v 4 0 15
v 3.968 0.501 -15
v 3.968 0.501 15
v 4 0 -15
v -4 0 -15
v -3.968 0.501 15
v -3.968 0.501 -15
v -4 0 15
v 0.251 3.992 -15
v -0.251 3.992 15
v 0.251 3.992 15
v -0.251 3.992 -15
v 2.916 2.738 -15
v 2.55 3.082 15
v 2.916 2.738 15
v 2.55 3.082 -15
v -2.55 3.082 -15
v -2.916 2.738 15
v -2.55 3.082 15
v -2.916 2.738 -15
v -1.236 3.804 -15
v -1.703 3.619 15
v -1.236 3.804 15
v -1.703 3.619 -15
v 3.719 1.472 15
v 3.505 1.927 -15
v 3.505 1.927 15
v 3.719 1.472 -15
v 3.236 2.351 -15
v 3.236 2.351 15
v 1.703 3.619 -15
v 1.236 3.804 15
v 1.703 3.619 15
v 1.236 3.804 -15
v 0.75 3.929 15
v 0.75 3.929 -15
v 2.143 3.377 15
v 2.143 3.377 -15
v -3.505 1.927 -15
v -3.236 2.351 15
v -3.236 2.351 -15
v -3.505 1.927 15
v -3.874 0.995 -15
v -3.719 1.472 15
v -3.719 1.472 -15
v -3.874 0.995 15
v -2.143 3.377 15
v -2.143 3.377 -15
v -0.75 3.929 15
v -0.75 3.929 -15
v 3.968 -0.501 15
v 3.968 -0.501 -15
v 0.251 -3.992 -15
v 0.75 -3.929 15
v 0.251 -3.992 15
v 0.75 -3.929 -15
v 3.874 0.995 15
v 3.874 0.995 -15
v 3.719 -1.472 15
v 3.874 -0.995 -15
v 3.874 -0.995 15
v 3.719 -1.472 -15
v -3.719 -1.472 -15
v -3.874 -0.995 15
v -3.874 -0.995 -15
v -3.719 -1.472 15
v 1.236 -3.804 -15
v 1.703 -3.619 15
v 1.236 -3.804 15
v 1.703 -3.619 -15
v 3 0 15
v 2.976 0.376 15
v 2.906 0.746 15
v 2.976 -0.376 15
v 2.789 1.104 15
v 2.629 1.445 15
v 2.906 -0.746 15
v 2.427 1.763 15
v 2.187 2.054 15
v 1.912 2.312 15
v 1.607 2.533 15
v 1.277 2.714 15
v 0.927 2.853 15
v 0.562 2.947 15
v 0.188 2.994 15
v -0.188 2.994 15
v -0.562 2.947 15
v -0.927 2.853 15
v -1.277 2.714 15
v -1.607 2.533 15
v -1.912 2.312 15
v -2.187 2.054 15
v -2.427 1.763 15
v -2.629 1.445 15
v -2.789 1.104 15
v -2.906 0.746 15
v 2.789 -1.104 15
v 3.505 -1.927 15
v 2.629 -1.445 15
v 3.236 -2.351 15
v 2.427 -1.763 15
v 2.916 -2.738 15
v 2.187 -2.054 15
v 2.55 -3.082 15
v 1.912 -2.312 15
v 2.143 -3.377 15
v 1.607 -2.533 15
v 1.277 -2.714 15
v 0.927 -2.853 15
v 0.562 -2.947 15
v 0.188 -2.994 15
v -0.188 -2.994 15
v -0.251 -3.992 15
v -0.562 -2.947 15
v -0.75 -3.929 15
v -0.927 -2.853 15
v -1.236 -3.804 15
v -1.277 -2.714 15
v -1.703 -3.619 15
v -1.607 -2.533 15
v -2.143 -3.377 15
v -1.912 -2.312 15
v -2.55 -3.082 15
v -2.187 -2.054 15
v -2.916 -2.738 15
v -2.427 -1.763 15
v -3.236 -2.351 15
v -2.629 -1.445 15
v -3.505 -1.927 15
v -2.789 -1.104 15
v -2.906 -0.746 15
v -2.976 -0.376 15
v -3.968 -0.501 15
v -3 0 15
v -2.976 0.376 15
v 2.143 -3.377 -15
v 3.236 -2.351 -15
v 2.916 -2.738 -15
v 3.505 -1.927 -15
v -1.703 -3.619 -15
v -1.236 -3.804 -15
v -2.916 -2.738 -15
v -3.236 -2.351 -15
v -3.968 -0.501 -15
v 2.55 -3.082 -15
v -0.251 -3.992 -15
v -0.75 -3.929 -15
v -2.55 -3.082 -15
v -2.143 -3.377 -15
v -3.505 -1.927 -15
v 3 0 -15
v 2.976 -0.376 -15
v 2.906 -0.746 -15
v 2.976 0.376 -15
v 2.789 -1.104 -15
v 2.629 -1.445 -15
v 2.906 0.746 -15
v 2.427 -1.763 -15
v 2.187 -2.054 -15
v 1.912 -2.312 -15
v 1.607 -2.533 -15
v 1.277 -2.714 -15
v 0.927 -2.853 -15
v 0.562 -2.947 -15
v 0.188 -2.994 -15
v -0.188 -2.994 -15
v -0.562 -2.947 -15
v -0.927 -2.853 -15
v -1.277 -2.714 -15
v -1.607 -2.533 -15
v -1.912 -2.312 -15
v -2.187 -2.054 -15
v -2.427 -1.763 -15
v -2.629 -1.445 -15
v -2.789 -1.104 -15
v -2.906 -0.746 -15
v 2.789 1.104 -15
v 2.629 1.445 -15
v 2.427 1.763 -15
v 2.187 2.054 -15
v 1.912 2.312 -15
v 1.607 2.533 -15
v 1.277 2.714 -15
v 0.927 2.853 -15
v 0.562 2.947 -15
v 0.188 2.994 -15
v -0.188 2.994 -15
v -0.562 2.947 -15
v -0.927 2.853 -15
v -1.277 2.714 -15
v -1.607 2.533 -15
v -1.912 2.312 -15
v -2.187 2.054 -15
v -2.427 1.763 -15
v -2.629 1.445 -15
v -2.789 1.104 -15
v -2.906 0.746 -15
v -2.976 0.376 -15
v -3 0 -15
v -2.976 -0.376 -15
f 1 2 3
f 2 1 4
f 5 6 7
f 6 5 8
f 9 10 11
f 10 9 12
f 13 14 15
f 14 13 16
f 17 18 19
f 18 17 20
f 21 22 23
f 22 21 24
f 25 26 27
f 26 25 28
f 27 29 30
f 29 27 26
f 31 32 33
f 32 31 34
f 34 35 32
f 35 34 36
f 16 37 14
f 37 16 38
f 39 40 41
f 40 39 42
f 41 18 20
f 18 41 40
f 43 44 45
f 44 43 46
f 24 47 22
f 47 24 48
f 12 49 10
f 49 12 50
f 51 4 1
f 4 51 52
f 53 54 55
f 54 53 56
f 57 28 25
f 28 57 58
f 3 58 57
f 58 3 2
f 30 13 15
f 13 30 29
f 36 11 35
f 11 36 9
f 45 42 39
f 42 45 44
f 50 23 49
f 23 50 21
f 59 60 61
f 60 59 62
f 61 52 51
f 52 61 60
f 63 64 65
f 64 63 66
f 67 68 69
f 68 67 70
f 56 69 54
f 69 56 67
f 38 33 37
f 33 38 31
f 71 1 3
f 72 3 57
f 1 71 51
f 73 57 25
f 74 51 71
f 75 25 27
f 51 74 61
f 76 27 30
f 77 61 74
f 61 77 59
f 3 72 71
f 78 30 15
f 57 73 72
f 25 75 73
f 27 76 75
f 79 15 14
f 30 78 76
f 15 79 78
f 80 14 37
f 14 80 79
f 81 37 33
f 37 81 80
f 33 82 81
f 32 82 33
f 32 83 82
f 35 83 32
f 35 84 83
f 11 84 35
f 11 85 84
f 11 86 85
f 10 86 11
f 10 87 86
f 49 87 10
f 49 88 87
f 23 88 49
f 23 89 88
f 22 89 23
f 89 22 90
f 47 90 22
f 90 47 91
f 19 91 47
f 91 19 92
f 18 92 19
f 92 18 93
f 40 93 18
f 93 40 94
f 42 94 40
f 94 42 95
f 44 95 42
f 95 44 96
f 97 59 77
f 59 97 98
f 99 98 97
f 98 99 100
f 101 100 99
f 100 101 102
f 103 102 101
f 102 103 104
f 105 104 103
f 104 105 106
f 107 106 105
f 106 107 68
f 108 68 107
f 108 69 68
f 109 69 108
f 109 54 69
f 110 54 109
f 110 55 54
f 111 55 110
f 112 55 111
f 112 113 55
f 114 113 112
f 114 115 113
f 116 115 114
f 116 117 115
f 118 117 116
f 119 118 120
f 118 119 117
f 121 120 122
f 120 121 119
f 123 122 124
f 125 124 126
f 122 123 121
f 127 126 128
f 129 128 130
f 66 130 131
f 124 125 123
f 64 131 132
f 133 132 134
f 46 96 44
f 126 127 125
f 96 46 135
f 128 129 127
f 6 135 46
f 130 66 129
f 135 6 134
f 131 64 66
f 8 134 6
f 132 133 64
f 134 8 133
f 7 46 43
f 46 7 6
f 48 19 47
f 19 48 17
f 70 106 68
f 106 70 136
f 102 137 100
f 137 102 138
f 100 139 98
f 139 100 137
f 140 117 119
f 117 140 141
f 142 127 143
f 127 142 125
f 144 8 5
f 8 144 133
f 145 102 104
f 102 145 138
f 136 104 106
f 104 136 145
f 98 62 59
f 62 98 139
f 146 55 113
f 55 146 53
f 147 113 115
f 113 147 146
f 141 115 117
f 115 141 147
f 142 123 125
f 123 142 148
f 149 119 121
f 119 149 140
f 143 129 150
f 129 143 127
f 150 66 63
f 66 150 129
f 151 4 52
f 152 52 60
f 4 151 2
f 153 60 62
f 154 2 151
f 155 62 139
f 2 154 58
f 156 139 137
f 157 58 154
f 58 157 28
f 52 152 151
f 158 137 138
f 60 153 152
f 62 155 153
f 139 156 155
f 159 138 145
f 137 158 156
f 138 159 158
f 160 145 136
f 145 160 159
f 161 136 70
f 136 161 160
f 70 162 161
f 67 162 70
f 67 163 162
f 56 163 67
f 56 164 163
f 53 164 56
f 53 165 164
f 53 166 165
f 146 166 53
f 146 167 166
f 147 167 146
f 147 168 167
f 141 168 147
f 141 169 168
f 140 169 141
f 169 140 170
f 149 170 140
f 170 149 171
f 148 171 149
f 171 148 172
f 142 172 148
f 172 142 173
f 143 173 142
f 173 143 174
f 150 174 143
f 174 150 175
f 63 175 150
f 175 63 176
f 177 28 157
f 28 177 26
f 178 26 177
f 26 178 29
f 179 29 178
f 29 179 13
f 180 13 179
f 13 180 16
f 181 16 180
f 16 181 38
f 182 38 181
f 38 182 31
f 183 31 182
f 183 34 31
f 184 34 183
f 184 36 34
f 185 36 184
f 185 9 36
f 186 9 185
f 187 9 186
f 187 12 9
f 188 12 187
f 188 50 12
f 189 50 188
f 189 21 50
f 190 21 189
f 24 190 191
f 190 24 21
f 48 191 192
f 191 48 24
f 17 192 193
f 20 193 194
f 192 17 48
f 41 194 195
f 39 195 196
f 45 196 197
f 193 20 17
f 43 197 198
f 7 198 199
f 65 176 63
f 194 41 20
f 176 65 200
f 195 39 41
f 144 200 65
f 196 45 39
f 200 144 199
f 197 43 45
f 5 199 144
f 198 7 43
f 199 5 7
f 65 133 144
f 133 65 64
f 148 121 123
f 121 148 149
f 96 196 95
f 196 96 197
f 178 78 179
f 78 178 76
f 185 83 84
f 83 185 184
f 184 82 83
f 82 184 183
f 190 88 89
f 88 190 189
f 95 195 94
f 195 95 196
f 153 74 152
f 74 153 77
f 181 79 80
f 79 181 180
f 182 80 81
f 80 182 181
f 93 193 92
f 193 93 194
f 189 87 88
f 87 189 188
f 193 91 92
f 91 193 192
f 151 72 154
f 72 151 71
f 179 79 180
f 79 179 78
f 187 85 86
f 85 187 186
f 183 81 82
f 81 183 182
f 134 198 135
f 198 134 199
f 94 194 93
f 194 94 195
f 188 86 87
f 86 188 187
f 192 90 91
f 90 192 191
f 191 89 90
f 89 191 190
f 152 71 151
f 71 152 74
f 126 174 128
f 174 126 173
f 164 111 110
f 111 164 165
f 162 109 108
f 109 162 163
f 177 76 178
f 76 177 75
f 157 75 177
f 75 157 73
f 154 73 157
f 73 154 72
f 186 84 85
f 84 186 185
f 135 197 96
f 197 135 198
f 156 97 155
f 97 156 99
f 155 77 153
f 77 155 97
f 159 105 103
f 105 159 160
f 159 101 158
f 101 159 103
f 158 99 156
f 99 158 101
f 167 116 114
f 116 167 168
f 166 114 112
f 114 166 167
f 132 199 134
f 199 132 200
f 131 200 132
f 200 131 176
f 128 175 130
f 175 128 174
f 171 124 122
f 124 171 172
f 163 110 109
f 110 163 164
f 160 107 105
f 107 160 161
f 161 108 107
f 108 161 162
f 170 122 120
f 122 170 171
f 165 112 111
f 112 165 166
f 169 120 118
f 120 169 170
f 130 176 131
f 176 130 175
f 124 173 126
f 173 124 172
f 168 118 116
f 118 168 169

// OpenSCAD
$fn = 50;


difference() {
	union() {
		translate(v = [0, 0, -15.0000000000]) {
			cylinder(h = 30, r = 4.0000000000);
		}
	}
	union() {
		translate(v = [0, 0, -100.0000000000]) {
			cylinder(h = 200, r = 3.0000000000);
		}
	}
}
